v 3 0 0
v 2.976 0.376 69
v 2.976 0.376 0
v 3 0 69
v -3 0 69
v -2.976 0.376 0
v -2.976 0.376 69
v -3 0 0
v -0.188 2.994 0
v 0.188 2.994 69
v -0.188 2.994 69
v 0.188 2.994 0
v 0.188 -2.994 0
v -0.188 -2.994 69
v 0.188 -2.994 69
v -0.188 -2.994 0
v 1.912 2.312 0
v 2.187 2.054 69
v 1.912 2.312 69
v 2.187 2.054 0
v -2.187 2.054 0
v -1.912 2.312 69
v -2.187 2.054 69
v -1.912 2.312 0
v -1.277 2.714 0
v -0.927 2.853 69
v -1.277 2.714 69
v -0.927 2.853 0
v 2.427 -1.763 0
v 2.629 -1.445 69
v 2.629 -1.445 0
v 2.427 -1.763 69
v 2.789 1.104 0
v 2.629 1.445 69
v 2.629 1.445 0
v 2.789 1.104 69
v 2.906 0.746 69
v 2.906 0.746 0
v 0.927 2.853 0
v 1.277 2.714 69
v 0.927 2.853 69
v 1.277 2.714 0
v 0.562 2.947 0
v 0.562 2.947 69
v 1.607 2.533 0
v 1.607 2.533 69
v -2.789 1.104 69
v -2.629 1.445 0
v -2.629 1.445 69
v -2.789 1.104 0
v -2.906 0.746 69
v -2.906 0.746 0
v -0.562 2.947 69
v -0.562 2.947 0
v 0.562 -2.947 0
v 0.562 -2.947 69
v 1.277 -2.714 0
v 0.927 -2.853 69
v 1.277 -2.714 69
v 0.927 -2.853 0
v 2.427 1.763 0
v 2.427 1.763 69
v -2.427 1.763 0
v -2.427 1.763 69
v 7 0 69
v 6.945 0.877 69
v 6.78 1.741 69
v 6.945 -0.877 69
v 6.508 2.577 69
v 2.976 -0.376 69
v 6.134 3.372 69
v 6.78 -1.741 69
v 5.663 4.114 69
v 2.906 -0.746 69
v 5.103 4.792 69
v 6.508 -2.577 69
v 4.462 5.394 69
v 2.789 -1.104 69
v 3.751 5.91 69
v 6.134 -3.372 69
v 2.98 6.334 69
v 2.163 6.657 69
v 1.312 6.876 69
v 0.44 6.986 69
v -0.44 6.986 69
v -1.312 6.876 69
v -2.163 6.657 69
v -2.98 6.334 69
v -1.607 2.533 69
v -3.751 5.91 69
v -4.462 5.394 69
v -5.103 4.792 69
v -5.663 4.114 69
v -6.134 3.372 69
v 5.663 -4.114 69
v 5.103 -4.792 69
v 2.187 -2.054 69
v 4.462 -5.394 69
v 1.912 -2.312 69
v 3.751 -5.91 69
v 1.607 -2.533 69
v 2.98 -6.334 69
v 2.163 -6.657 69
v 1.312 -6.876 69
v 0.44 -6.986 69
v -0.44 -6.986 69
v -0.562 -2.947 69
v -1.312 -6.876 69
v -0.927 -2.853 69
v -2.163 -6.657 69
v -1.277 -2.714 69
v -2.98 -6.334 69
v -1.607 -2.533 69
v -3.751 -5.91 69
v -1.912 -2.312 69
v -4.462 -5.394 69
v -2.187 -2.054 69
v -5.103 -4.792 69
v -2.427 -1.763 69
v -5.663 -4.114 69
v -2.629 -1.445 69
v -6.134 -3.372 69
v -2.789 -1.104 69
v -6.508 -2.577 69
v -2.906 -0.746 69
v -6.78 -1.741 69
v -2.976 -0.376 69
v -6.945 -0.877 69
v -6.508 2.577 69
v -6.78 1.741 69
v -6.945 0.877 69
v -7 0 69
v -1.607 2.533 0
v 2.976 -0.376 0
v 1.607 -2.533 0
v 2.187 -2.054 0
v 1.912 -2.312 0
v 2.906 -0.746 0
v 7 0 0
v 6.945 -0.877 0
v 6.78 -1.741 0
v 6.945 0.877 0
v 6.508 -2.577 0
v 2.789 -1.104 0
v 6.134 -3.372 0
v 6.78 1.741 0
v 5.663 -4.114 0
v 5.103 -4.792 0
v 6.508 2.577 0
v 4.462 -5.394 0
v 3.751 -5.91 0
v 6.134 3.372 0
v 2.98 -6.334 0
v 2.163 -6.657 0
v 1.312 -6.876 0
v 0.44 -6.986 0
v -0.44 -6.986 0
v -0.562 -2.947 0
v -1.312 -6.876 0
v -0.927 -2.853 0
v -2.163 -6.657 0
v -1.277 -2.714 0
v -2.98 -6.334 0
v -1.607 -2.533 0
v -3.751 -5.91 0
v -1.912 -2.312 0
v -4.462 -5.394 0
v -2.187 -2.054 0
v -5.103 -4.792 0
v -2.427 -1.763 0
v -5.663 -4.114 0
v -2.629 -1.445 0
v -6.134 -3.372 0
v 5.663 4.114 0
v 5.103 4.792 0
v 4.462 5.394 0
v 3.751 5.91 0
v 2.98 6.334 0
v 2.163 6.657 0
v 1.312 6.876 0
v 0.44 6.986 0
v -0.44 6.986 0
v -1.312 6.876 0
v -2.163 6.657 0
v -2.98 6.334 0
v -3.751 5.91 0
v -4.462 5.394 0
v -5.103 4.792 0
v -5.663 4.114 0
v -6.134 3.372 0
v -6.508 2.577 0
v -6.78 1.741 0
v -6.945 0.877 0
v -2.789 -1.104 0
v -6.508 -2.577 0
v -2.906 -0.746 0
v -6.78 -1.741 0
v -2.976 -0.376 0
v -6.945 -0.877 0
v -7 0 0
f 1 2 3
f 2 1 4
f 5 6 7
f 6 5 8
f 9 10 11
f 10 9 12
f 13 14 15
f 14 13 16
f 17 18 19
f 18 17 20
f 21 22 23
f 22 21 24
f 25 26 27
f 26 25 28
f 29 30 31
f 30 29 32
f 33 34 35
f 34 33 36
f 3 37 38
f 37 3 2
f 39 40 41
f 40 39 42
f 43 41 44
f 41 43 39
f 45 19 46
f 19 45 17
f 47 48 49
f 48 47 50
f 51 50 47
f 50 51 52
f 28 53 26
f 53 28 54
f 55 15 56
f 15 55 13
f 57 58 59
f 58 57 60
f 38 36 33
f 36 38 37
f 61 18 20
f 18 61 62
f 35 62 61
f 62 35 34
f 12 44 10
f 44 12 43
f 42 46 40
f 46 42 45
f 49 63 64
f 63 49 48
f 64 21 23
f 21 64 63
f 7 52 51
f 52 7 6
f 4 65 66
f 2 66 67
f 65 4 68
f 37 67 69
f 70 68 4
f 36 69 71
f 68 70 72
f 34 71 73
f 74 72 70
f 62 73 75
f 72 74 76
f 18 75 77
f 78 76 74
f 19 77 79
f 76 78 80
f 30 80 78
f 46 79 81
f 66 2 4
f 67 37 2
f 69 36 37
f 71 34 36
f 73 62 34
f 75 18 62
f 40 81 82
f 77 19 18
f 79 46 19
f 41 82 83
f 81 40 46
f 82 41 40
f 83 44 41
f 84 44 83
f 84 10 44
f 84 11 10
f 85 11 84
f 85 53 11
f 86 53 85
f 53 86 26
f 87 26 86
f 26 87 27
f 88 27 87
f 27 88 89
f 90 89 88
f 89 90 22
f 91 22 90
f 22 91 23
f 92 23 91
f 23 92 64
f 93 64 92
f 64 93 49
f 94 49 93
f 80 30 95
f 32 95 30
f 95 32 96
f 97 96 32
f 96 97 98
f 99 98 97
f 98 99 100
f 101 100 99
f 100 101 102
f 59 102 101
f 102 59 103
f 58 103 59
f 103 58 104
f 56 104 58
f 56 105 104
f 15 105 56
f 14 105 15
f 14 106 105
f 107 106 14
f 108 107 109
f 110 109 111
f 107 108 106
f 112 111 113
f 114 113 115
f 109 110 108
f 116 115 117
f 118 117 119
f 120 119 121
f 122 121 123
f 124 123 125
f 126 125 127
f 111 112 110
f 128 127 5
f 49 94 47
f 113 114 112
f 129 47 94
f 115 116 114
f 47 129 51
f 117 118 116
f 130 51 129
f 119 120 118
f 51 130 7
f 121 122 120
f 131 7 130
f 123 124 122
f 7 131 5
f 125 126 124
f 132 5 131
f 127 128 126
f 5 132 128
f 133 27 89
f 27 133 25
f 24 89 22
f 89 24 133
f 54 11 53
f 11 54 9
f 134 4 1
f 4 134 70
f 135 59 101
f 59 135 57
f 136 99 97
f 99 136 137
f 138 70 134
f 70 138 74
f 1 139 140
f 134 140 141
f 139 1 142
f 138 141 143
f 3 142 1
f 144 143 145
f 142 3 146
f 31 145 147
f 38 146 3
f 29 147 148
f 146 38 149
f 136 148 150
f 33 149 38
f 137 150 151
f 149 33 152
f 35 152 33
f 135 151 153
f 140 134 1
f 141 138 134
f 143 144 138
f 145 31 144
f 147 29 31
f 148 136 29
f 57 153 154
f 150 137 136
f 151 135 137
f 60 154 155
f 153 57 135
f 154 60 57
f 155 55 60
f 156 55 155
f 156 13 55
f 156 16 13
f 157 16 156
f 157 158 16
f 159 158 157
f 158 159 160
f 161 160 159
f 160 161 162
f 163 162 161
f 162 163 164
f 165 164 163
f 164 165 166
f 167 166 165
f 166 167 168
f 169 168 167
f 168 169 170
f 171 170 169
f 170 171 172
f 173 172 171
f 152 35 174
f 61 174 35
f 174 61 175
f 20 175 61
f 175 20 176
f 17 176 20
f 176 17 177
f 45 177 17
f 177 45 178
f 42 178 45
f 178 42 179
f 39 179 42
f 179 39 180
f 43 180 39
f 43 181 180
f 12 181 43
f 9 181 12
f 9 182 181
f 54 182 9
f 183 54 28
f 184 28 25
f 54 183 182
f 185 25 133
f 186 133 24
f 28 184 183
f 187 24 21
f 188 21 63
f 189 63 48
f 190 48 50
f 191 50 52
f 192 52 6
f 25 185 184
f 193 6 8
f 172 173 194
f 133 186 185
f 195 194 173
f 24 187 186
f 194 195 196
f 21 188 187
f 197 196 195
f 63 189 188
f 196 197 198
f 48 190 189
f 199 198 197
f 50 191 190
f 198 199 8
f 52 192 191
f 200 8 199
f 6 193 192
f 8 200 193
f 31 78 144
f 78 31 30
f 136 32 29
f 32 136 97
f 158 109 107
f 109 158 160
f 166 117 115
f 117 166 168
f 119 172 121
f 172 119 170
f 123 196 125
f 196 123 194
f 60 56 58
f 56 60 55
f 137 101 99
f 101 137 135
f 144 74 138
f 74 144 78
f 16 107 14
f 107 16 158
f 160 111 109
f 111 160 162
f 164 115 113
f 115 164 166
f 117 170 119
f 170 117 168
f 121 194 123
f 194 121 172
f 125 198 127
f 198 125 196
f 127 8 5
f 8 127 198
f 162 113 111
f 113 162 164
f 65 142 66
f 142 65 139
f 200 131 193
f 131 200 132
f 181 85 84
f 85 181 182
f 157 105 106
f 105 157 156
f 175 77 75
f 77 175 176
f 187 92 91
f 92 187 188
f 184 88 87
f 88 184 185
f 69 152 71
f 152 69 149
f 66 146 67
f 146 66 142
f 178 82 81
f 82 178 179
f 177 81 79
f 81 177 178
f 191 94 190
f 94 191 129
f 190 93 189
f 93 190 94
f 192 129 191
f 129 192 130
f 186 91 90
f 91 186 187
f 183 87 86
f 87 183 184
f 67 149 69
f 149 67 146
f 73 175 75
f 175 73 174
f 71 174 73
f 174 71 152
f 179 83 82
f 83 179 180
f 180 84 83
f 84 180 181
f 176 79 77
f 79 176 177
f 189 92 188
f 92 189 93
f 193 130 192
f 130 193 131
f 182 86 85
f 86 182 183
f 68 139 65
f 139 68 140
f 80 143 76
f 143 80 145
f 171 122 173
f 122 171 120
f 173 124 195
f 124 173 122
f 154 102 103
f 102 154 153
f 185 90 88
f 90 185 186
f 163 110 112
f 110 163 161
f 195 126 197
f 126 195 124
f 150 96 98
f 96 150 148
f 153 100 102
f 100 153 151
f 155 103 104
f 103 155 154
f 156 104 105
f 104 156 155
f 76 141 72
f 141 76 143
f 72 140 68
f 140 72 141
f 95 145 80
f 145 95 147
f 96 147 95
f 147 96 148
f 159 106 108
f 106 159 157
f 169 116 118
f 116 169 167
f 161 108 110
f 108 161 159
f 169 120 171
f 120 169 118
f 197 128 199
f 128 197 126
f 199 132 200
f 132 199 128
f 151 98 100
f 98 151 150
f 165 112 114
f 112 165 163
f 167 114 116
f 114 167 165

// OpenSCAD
$fn = 50;


difference() {
	union() {
		cylinder(h = 69, r = 7.0000000000);
	}
	union() {
		cylinder(h = 69, r = 3.0000000000);
		cylinder(h = 69, r = 1.5000000000);
		cylinder(h = 69, r = 1.5000000000);
		cylinder(h = 69, r = 1.5000000000);
	}
}
